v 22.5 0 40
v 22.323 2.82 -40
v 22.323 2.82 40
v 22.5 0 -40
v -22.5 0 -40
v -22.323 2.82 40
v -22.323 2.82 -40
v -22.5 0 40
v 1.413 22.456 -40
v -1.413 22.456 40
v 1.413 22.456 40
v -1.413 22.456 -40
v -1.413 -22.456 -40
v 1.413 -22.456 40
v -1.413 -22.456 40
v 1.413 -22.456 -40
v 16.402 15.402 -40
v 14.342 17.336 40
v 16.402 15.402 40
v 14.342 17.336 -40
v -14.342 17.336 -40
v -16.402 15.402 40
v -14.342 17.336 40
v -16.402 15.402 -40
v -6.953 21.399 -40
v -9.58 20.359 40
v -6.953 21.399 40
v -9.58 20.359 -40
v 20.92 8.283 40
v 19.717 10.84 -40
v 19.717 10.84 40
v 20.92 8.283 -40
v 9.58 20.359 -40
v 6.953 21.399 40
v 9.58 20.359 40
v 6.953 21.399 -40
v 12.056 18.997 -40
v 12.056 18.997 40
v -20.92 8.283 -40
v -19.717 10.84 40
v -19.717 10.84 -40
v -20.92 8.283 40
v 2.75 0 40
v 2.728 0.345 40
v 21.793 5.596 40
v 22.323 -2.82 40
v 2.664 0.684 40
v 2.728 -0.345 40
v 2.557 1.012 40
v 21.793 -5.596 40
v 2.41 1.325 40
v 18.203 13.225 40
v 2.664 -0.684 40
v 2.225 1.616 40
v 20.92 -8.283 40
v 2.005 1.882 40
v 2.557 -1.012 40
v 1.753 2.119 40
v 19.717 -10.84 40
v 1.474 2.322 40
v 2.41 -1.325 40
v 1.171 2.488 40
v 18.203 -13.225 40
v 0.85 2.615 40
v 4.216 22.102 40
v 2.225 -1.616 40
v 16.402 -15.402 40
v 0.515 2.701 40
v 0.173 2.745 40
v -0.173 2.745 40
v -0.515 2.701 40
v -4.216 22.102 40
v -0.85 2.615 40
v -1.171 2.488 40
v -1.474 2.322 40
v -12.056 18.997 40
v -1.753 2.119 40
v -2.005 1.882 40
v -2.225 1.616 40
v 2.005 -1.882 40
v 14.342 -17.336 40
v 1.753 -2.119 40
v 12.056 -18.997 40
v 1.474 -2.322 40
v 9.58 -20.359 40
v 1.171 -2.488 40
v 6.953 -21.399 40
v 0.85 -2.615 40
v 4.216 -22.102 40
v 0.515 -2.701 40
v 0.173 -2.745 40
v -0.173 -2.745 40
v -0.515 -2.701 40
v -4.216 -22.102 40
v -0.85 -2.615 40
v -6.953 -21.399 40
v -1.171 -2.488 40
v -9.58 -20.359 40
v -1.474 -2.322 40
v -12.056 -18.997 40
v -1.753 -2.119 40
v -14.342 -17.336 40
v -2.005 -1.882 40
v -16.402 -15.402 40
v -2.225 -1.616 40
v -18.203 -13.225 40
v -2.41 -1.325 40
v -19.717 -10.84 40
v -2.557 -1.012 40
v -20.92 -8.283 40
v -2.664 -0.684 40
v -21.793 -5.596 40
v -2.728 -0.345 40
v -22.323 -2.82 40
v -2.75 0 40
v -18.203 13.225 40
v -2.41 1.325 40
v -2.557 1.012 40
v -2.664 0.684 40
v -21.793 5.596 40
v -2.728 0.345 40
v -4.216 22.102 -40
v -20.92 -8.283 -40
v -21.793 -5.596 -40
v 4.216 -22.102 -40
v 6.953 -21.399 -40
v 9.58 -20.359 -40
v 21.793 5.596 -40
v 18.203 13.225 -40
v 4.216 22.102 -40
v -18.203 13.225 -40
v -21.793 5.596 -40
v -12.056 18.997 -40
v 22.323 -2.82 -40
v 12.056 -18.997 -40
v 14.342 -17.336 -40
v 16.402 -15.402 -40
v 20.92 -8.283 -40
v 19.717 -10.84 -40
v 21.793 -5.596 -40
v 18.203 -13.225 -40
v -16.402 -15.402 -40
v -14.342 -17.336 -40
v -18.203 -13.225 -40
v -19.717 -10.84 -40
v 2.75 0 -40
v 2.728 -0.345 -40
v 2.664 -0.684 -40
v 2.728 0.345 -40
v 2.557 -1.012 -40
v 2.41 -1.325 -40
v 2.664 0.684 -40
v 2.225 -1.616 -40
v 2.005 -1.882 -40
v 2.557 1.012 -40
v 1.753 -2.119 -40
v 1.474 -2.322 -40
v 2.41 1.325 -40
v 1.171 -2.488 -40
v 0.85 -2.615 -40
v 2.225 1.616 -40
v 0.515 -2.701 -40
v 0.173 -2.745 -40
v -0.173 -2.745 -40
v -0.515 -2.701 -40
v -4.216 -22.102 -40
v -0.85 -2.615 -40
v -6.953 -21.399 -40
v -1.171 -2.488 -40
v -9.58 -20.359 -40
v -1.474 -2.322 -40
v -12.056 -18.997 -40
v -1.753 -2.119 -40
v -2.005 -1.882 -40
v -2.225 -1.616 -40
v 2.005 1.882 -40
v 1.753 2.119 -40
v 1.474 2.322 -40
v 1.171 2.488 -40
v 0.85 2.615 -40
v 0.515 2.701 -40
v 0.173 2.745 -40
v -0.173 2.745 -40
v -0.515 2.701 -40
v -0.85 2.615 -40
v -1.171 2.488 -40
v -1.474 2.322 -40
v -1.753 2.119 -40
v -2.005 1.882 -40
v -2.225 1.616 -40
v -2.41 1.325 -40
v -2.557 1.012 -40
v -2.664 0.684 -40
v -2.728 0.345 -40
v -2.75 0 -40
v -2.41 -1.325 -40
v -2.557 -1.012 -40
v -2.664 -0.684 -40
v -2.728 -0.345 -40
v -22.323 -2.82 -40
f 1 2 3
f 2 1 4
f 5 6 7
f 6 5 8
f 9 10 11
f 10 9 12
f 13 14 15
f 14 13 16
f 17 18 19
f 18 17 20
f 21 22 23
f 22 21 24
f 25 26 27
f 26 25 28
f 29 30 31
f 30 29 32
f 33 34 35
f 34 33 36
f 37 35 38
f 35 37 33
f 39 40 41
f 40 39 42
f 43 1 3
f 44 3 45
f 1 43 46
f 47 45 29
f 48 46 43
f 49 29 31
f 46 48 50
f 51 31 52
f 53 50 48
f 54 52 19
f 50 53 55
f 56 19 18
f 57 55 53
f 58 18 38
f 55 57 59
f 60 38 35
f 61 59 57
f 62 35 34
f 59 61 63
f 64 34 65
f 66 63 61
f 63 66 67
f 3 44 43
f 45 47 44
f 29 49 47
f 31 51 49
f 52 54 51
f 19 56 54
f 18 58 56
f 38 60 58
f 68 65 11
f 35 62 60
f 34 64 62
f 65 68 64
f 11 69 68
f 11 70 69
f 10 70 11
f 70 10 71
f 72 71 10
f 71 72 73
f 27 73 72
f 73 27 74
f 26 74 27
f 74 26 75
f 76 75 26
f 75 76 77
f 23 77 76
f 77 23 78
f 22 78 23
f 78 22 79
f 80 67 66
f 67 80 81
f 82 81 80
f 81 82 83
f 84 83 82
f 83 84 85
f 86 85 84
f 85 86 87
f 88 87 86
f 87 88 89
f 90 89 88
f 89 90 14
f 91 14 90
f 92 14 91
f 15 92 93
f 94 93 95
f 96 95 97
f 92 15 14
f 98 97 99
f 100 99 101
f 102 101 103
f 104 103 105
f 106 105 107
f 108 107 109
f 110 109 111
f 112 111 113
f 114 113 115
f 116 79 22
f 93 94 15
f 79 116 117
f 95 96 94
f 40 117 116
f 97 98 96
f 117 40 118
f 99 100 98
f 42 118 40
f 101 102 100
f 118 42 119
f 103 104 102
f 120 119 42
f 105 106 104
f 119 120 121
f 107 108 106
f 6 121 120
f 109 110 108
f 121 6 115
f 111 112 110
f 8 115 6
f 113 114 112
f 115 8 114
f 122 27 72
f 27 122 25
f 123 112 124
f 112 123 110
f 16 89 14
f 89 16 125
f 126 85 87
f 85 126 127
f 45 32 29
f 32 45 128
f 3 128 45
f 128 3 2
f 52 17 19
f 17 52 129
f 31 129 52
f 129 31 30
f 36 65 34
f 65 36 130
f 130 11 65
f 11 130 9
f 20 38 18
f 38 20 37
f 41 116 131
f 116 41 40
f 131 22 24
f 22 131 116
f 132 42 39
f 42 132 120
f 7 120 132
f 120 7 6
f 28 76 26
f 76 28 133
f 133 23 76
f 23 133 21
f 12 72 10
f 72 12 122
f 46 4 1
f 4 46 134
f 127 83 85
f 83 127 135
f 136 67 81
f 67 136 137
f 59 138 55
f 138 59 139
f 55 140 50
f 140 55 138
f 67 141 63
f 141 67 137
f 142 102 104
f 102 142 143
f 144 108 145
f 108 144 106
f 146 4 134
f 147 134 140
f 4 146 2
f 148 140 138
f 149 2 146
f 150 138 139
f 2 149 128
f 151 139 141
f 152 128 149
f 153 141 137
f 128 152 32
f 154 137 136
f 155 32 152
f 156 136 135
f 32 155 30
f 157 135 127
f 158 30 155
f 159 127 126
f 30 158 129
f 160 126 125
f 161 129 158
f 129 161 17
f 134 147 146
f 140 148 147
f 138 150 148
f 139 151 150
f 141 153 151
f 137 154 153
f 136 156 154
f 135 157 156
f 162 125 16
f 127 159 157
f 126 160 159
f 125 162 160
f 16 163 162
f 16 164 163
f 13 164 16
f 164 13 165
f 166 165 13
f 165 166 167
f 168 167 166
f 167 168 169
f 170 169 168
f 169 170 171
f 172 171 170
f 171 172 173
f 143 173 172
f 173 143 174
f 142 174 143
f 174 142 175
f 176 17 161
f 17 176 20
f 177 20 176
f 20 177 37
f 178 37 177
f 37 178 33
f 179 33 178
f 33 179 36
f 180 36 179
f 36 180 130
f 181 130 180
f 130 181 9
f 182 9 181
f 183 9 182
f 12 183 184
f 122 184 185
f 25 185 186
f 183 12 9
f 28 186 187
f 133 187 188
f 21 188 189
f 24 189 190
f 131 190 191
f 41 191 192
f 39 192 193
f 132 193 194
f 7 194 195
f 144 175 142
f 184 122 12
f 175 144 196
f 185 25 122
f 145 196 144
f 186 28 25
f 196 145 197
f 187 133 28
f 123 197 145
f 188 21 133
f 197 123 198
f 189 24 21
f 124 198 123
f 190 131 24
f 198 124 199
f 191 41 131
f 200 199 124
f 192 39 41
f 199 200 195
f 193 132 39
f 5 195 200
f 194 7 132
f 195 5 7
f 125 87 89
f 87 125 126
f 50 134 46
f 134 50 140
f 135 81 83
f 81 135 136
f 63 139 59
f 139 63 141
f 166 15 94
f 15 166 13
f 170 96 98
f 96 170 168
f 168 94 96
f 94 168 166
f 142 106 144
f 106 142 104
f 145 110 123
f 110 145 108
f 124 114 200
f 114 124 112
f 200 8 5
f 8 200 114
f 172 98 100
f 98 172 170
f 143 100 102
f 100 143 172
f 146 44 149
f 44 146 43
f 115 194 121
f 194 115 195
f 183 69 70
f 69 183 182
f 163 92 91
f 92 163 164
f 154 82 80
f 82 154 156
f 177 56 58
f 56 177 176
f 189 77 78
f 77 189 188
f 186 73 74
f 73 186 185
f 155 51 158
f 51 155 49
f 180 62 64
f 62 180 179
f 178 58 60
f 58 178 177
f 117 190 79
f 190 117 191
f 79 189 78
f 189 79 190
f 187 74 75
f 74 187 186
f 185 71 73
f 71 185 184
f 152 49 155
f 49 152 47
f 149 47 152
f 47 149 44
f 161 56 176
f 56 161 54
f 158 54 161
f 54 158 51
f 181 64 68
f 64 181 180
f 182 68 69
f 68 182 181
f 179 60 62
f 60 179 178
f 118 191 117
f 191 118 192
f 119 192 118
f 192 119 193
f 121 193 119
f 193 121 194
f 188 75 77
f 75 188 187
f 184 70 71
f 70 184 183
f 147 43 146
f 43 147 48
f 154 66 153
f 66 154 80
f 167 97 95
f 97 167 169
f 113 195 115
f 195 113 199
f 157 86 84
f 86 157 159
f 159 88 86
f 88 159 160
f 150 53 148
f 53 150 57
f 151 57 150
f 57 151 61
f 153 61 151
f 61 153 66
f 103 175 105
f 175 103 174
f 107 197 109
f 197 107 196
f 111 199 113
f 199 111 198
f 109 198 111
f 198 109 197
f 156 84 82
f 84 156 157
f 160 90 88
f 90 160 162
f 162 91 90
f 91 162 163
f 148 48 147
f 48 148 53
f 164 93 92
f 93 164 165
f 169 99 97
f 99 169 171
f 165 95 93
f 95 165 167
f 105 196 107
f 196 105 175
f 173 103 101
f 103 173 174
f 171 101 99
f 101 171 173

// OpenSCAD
$fn = 50;


difference() {
	union() {
		translate(v = [0, 0, -40.0000000000]) {
			cylinder(h = 80, r = 22.5000000000);
		}
	}
	union() {
		translate(v = [0, 0, -100.0000000000]) {
			cylinder(h = 200, r = 2.7500000000);
		}
	}
}
